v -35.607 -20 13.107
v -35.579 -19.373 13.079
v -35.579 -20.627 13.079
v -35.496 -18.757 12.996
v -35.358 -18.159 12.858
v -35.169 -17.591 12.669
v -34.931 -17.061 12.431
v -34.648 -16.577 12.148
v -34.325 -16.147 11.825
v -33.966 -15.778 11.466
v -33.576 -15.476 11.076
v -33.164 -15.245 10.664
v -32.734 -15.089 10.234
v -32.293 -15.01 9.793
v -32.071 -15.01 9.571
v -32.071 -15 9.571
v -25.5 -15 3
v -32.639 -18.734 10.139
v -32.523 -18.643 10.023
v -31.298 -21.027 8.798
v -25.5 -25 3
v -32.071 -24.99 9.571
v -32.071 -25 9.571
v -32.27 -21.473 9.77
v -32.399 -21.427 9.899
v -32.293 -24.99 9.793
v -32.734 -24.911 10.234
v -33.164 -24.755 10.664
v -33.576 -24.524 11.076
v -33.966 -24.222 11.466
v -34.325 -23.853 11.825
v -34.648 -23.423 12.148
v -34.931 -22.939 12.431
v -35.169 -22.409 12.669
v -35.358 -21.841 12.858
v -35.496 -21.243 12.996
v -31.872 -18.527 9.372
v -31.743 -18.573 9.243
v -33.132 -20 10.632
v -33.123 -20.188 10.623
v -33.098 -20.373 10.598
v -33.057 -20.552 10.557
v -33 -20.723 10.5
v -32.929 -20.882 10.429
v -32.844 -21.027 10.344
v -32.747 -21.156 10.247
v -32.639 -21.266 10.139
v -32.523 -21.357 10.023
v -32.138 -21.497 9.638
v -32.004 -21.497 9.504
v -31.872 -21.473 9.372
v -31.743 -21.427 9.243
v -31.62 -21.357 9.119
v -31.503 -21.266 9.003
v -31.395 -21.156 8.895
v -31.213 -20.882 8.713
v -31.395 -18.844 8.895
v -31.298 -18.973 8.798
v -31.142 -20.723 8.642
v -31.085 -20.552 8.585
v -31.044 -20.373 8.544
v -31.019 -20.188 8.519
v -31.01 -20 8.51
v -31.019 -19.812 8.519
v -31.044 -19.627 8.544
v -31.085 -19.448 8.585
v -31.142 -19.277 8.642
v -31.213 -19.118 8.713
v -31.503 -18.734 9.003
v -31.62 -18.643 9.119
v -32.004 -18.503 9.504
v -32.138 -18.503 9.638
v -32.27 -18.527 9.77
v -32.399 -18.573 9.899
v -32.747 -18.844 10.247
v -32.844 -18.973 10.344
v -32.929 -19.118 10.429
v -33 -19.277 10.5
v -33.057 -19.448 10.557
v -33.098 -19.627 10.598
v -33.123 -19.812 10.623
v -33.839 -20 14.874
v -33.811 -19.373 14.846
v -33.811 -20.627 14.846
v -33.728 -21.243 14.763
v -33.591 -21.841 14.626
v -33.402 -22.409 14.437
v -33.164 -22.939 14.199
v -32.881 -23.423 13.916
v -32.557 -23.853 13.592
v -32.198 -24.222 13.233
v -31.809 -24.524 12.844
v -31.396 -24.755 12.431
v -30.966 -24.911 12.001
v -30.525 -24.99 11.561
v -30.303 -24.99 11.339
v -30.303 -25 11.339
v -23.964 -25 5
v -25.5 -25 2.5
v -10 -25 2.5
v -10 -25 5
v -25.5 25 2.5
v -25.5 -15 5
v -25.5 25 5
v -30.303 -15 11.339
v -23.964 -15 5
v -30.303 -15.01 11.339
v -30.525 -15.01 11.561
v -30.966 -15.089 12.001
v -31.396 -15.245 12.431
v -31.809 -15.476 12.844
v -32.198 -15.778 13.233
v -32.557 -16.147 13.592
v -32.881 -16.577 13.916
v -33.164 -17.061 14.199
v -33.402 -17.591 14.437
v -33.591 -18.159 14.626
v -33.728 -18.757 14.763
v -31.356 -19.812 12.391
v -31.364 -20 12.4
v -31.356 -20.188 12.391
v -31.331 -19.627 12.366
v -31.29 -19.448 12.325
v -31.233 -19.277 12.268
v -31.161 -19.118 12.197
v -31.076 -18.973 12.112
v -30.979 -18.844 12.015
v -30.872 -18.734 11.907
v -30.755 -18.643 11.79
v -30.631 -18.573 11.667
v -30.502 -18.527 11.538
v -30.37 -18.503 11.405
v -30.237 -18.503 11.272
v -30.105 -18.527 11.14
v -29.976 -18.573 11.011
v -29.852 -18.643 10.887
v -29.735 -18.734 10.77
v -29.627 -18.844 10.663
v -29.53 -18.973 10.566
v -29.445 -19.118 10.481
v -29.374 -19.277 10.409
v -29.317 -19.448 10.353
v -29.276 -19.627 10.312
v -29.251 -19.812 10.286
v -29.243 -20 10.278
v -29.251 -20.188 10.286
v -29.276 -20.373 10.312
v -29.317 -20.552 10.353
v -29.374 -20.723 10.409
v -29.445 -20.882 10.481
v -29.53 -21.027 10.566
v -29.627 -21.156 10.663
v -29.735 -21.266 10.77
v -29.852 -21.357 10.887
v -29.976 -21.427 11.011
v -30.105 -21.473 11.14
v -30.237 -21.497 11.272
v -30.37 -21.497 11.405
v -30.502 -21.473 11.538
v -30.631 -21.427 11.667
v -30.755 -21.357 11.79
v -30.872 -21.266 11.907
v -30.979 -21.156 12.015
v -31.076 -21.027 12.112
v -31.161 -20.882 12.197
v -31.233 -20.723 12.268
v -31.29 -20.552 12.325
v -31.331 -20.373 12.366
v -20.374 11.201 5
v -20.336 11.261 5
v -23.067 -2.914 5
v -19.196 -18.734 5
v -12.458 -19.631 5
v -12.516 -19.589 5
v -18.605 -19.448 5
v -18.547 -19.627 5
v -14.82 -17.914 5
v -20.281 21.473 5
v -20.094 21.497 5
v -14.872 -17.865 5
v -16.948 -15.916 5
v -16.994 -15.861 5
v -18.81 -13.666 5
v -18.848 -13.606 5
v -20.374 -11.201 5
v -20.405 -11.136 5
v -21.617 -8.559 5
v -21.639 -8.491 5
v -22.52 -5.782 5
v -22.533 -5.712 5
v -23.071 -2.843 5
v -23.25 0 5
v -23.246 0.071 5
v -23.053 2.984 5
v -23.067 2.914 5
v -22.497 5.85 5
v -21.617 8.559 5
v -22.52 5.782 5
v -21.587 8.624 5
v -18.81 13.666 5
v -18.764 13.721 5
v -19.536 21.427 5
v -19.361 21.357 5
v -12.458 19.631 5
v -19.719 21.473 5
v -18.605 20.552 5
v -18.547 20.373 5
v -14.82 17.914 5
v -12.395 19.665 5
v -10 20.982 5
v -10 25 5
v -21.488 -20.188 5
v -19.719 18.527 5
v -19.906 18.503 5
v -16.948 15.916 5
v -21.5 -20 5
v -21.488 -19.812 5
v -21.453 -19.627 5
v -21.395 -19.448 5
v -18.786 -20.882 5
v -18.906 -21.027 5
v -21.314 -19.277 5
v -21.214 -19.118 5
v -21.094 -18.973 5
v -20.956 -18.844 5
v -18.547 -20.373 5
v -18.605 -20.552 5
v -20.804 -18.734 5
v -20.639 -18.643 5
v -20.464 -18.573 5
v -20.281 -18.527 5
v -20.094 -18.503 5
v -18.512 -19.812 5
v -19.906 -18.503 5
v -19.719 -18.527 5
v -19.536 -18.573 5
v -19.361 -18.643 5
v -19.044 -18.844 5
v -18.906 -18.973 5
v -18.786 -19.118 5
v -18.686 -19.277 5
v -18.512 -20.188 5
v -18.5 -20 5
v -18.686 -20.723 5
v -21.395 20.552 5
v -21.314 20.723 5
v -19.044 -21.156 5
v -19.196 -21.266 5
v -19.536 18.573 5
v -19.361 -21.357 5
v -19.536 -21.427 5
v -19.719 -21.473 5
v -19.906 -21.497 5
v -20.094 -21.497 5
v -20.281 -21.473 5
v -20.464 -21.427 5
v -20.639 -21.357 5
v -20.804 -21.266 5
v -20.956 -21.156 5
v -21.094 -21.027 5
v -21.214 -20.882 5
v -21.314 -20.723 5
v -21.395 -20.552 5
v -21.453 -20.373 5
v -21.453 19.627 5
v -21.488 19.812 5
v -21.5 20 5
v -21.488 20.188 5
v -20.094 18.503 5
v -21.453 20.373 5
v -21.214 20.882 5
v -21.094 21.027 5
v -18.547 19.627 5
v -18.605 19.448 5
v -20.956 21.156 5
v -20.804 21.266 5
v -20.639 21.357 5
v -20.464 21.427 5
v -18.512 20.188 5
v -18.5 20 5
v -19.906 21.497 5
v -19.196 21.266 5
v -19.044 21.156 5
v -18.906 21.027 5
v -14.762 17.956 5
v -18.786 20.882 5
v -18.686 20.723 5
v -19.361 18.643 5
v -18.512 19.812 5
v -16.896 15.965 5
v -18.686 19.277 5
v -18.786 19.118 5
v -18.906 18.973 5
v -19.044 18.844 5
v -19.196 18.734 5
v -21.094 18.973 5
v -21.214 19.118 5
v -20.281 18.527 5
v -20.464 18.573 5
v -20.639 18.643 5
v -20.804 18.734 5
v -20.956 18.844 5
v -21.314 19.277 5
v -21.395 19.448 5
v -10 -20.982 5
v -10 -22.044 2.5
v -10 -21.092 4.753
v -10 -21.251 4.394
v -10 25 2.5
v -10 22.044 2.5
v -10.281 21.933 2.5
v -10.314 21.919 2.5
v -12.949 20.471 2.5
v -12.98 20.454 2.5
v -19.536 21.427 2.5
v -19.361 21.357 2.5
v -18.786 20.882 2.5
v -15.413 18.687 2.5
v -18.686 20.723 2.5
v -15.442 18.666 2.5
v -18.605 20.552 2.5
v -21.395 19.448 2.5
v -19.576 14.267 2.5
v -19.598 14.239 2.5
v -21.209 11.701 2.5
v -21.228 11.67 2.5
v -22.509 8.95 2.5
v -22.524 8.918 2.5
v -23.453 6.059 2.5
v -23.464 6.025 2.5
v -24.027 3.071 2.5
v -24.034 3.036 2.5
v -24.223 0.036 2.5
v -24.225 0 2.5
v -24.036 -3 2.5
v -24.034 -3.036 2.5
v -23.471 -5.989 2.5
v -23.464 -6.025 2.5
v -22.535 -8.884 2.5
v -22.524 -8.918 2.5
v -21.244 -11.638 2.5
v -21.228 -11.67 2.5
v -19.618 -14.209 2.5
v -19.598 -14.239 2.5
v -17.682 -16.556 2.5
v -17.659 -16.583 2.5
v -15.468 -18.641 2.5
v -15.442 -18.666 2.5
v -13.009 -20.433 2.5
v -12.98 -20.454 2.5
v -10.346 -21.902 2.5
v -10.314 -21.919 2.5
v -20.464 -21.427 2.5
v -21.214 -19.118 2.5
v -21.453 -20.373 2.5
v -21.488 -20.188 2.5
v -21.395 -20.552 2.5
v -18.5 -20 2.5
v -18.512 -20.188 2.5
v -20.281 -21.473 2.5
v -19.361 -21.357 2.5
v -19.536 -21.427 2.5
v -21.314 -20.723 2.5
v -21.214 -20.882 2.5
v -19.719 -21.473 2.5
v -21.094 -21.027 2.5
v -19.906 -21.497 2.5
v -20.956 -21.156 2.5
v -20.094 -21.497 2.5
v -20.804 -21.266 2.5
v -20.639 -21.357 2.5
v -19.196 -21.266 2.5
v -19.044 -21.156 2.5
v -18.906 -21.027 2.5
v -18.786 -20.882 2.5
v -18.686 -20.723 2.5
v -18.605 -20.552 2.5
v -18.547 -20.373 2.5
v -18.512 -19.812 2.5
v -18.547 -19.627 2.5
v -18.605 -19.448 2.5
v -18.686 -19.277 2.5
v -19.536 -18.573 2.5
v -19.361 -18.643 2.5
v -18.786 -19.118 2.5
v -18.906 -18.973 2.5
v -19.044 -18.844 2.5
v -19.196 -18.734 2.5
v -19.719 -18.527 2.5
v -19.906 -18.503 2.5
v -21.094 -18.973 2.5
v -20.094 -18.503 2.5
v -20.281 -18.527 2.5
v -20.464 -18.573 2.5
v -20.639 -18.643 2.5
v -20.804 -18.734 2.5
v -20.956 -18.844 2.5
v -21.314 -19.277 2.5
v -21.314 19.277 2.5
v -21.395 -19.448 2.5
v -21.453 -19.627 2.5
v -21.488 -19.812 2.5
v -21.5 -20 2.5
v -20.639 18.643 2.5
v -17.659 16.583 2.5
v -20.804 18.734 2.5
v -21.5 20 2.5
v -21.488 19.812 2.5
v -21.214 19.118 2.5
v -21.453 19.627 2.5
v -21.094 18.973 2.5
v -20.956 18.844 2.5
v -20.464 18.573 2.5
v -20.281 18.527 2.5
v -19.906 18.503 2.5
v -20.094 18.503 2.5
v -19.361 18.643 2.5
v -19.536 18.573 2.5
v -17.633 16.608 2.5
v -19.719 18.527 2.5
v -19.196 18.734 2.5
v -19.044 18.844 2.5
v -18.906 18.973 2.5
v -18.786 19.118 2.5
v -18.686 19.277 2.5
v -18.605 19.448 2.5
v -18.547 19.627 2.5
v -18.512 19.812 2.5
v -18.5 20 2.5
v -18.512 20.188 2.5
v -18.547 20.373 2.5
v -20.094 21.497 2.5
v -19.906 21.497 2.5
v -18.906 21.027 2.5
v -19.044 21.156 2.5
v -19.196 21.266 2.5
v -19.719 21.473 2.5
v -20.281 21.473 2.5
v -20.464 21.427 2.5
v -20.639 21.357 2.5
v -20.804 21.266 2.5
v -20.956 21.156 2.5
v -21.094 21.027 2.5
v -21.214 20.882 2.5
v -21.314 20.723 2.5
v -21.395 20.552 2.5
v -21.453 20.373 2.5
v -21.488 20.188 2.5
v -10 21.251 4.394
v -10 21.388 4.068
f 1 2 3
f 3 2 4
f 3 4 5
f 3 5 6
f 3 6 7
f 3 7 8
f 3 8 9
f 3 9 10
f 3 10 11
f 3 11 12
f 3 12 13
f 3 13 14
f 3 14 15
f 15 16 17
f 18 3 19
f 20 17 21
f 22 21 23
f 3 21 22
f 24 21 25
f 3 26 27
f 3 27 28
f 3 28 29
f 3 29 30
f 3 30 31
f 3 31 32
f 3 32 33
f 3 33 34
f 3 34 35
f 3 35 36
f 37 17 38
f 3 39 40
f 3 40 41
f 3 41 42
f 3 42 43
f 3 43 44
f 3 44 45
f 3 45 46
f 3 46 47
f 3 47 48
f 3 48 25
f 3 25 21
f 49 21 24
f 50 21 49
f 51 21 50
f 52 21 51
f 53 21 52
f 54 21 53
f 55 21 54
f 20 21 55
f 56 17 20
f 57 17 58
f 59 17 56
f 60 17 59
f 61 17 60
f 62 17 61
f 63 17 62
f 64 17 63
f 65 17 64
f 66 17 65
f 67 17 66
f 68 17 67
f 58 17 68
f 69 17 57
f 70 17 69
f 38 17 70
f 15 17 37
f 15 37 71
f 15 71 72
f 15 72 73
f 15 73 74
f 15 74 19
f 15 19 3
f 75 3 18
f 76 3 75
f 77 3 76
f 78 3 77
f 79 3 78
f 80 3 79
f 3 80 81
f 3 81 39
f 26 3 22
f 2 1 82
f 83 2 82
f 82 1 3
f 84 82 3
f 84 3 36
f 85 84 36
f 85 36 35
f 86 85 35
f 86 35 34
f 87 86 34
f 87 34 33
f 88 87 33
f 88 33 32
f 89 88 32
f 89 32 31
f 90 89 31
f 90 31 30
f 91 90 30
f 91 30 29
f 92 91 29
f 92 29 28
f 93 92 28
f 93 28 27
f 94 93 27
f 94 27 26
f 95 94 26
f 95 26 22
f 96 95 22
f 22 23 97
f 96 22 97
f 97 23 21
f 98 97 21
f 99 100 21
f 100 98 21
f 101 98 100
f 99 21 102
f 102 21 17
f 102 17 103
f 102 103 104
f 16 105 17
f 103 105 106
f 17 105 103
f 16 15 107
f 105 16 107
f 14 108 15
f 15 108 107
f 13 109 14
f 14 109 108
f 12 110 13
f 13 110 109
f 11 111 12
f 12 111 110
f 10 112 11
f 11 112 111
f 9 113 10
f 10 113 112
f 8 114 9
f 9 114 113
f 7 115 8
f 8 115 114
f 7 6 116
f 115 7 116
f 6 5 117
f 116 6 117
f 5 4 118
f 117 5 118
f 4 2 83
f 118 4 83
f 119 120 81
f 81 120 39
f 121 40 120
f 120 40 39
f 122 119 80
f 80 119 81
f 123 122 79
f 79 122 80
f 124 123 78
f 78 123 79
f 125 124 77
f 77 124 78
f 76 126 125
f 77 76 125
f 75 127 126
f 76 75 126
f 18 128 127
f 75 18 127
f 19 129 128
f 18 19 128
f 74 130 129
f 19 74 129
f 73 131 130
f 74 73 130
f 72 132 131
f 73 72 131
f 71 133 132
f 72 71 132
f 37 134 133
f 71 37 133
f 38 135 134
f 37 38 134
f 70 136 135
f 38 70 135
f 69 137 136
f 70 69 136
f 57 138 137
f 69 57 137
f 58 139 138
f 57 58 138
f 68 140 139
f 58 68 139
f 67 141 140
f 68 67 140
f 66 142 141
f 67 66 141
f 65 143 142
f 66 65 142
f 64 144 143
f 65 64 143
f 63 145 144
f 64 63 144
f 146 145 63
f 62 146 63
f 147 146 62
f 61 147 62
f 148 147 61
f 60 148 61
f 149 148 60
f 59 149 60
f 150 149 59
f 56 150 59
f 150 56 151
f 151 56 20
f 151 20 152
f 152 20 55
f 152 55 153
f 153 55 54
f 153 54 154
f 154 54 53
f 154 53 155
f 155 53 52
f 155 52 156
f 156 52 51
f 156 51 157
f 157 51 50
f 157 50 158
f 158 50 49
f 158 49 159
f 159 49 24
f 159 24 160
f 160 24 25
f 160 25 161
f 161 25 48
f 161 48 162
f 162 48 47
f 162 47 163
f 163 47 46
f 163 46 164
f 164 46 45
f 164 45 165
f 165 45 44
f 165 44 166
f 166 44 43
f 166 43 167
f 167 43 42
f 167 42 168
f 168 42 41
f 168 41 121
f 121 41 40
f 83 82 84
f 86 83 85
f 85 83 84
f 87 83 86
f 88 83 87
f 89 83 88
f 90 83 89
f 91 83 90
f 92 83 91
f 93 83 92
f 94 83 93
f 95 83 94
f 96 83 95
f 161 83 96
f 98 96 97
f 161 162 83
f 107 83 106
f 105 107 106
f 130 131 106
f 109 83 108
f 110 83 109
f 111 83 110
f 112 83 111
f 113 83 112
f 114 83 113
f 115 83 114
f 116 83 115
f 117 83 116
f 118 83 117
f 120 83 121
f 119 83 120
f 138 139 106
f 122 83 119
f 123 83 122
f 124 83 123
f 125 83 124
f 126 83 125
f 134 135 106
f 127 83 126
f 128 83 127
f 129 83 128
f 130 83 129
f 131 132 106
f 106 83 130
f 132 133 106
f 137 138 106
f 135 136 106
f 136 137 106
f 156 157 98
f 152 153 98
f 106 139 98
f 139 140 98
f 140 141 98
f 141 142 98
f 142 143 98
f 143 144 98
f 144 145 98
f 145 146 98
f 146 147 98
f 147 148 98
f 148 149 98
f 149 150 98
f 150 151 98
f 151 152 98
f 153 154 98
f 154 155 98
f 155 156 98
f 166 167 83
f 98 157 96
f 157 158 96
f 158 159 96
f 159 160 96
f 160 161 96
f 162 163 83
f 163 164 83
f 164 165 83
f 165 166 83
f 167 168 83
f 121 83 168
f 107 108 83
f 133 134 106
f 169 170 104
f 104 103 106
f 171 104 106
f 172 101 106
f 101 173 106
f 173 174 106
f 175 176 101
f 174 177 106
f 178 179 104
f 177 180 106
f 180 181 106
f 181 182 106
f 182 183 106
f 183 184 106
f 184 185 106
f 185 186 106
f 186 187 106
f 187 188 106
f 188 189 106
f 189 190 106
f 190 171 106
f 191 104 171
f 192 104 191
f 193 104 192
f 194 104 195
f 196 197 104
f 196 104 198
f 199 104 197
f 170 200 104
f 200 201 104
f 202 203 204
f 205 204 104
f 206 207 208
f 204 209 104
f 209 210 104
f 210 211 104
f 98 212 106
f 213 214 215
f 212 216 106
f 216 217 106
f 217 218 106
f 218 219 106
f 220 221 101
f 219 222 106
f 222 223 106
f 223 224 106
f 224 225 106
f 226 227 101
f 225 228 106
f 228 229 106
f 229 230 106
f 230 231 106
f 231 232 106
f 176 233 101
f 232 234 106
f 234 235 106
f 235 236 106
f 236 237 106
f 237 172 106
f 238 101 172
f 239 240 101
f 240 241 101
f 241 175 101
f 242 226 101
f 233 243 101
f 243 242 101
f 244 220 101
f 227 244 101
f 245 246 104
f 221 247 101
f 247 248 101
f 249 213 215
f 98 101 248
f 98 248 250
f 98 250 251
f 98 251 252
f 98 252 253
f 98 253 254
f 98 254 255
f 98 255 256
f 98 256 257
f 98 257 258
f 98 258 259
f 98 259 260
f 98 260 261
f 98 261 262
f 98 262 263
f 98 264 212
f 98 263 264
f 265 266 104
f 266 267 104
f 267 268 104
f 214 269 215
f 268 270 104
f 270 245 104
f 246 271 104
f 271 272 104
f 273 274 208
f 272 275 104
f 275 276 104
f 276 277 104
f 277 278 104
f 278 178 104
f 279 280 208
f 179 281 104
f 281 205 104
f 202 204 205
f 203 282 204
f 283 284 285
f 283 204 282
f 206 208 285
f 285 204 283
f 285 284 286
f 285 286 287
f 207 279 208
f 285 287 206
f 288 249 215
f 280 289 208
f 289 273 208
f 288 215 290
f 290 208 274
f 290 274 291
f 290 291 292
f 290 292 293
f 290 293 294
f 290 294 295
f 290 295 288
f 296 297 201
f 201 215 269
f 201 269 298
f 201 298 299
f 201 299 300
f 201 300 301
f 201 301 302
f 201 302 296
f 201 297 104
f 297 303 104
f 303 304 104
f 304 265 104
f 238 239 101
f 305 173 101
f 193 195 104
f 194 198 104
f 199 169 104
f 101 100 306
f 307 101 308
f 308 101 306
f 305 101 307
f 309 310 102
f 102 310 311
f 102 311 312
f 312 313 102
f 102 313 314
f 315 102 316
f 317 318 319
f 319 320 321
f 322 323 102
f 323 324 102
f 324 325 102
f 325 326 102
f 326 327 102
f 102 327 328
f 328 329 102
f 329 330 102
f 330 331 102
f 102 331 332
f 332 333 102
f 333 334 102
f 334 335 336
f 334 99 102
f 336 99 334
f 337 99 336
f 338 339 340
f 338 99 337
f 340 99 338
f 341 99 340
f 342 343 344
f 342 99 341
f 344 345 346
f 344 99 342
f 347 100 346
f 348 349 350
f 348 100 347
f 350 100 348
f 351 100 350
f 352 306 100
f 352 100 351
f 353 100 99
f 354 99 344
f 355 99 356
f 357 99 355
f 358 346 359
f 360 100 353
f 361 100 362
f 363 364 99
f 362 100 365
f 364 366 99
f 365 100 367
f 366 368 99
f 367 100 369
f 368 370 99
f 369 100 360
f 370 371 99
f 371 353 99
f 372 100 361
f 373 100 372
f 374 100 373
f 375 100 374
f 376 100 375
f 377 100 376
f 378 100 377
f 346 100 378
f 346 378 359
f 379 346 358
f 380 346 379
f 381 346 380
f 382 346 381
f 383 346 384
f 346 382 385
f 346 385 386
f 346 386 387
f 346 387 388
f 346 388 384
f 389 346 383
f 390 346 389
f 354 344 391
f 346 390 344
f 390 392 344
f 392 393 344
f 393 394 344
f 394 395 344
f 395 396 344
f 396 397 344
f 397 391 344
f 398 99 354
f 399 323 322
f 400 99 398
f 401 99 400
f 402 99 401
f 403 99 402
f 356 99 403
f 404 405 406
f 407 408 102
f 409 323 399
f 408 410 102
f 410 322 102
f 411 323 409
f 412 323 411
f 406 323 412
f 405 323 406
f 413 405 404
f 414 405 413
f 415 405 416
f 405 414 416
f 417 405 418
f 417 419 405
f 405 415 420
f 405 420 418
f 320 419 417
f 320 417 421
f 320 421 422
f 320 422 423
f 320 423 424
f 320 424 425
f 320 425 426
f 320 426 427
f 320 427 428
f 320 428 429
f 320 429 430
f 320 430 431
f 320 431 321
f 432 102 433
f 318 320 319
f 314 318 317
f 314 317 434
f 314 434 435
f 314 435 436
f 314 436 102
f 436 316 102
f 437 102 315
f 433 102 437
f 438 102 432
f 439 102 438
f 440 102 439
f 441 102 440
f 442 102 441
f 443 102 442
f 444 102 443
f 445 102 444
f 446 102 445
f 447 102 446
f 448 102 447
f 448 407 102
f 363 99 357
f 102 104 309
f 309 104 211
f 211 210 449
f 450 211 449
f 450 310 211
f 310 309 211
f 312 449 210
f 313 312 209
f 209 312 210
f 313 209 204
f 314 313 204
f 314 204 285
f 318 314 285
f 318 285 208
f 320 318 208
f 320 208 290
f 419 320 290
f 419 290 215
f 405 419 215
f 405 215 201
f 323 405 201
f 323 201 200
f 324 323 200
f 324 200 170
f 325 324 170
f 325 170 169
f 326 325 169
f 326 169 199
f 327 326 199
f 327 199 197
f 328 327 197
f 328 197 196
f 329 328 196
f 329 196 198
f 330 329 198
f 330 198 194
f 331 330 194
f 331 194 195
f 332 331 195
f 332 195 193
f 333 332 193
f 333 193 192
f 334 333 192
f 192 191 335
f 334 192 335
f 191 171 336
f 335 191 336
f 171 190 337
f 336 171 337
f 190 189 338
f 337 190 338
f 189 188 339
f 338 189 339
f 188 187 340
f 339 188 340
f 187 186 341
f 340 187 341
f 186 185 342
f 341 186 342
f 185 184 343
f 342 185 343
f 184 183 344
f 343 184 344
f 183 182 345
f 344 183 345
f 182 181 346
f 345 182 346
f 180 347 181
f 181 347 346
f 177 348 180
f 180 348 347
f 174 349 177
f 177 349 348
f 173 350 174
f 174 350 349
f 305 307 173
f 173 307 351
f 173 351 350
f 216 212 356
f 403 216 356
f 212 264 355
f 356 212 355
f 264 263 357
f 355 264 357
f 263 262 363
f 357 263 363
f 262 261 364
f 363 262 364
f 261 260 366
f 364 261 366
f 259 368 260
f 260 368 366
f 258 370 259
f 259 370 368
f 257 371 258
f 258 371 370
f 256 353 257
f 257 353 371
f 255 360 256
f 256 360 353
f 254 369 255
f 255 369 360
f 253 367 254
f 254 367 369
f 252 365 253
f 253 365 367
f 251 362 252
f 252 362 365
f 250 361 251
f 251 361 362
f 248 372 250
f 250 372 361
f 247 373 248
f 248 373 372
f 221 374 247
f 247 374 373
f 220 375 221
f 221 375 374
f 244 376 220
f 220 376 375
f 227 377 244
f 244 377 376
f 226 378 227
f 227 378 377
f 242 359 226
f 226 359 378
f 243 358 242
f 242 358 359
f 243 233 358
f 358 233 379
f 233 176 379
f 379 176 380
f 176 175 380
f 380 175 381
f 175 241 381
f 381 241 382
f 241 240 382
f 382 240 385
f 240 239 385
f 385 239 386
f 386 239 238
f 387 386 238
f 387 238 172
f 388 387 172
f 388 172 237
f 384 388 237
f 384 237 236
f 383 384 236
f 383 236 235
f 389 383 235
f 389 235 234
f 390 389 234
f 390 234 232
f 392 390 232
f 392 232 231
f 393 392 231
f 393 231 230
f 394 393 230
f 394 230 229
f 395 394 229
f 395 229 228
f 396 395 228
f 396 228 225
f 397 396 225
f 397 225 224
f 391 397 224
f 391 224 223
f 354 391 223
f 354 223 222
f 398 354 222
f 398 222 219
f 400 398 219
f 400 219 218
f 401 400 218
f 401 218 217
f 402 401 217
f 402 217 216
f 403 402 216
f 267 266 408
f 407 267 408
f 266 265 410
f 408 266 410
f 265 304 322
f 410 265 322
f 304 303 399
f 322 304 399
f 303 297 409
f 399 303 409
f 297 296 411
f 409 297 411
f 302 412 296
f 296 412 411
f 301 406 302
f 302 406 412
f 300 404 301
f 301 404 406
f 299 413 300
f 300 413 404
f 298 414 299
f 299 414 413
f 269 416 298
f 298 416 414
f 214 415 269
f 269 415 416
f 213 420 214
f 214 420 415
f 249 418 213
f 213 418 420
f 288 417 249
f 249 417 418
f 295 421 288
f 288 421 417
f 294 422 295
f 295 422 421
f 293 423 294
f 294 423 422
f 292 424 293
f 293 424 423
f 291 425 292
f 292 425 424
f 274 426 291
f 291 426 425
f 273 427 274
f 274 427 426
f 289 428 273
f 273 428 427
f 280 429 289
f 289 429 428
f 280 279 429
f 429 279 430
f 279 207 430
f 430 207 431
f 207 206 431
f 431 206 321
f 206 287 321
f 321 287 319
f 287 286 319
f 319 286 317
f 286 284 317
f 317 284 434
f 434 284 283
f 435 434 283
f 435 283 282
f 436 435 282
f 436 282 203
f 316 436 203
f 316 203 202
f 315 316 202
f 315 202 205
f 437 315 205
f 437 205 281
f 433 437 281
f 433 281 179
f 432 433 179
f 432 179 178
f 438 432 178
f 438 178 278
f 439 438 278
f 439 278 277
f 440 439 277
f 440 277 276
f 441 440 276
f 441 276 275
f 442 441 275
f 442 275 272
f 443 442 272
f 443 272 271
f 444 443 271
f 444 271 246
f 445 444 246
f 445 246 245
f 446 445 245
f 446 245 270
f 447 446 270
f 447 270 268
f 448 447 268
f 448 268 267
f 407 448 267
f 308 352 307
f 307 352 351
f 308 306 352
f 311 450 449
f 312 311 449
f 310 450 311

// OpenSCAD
rt = 5;
h = 50;
d = 0.7;
dp = 2.5;
s = 50;
sl = 40;
rl = 1.5;

sp = 0.5;

rb = 48/2+sp;


hw = 15;

$fn = 50;

rml = 5;
lm = 10;

difference(){
	union(){
		translate([-s/2-sp,-s/2,0]) cube([hw+sp,h,dp*2]);
	
		translate([-s/2,rml-s/2,dp]) {
			rotate([0,45,0])
			difference(){
				union(){		
					translate([-lm,0,0]) cylinder(r=rml,h=dp);
					translate([-lm,-rml,0]) cube([lm,rml*2,dp]);
				}
				translate([-lm,0,0]) cylinder(r=rl,h=dp);
			}
		}
		

	}
	#cylinder(h,rb+d,rt+d);
	#translate([-s/2-sp,-s/2,0]) cube([s+sp,s,dp]);

	translate([-sl/2,-sl/2,0]) cylinder(r=rl,h=dp*2);
	translate([-sl/2,sl/2,0]) cylinder(r=rl,h=dp*2);
	translate([sl/2,-sl/2,0]) cylinder(r=rl,h=dp*2);
	translate([sl/2,sl/2,0]) cylinder(r=rl,h=dp*2);

}
